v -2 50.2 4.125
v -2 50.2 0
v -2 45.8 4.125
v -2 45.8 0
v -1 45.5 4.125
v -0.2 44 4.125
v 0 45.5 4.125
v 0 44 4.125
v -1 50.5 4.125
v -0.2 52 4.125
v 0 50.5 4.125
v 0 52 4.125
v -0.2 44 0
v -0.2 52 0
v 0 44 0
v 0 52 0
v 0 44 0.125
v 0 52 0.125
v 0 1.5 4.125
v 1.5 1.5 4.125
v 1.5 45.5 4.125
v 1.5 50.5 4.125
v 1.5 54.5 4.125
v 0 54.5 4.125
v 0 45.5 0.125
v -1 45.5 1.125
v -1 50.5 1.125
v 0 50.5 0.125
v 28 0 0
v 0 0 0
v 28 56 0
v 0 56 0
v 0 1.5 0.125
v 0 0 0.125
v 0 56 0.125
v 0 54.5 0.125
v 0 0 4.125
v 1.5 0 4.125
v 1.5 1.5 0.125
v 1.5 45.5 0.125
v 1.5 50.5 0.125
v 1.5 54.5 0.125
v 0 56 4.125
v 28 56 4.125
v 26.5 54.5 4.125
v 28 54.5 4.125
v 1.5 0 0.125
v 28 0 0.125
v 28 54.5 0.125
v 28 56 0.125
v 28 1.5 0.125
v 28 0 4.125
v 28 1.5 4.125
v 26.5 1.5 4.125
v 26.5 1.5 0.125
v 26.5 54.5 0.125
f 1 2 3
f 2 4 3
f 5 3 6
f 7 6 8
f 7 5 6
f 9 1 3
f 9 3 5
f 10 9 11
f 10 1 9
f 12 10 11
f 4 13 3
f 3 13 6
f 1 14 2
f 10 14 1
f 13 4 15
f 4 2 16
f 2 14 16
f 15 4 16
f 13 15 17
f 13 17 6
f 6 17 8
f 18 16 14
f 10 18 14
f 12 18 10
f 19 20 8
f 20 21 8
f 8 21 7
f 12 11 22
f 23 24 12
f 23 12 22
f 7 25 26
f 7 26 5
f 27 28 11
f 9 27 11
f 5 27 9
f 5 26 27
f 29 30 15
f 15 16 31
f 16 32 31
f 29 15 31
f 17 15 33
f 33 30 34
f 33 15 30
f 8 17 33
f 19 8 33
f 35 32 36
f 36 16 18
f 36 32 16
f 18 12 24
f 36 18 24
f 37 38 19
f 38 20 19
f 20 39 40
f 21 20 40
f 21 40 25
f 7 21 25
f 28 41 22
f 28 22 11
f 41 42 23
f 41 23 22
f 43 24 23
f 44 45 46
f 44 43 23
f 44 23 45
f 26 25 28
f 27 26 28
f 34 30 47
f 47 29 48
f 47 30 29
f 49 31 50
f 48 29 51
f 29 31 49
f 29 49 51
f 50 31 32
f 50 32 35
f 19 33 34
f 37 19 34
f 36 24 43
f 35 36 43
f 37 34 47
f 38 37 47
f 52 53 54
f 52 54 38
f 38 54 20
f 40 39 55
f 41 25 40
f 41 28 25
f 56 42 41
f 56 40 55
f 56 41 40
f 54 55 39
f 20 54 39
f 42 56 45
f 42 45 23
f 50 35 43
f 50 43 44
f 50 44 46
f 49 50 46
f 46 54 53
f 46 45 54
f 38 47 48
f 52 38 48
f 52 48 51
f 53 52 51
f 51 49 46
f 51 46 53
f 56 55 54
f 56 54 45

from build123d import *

# Parameters (mm, degrees)
BOX_W           = 28
BOX_H           = 56
BOX_DEPTH       = 0.125
SKETCH004_W     = 1.5
SKETCH004_H     = 45.5
SKETCH004_H_2   = 4
PAD004_DEPTH    = 4
SKETCH005_W     = 28
SKETCH005_H     = 1.5
PAD005_DEPTH    = 4
SKETCH006_W     = 1.5
SKETCH006_H     = 53
PAD006_DEPTH    = 4
SKETCH003_W     = 28
SKETCH003_H     = 1.5
PAD003_DEPTH    = 4
BOX004_W        = 5
BOX004_H        = 5
BOX004_DEPTH    = 5
CHAMFER_SIZE    = 1
BOX002_W        = 2
BOX002_H        = 8
BOX002_DEPTH    = 4.125
CHAMFER001_SIZE = 1.8


with BuildPart() as base:
    # Box → Box (new body)
    with BuildSketch(Plane.XY):
        with Locations((14, 28)):
            Rectangle(BOX_W, BOX_H)
    extrude(amount=BOX_DEPTH)


with BuildPart() as pad004:
    # Sketch004 → Pad004 (new body)
    with BuildSketch(Plane.XY.offset(0.125)):
        with Locations((0.75, 22.75)):
            Rectangle(SKETCH004_W, SKETCH004_H)
        with Locations((0.75, 52.5)):
            Rectangle(SKETCH004_W, SKETCH004_H_2)
    extrude(amount=PAD004_DEPTH)


with BuildPart() as pad005:
    # Sketch005 → Pad005 (new body)
    with BuildSketch(Plane.XY.offset(0.125)):
        with Locations((14, 0.75)):
            Rectangle(SKETCH005_W, SKETCH005_H)
    extrude(amount=PAD005_DEPTH)


with BuildPart() as pad006:
    # Sketch006 → Pad006 (new body)
    with BuildSketch(Plane.XY.offset(0.125)):
        with Locations((27.25, 28)):
            Rectangle(SKETCH006_W, SKETCH006_H)
    extrude(amount=PAD006_DEPTH)


with BuildPart() as walls:
    # Sketch003 → Pad003 (new body)
    with BuildSketch(Plane.XY.offset(0.125)):
        with Locations((14, 55.25)):
            Rectangle(SKETCH003_W, SKETCH003_H)
    extrude(amount=PAD003_DEPTH)

    # Fusion001: union Pad004, Pad005, Pad006
    add(pad004.part)
    add(pad005.part)
    add(pad006.part)


with BuildPart() as chamfer_body:
    # Box004 → Box004 (new body)
    with BuildSketch(Plane(origin=(-1, 45.5, 0.125), x_dir=(1, 0, 0), z_dir=(0, 0, 1))):
        with Locations((2.5, 2.5)):
            Rectangle(BOX004_W, BOX004_H)
    extrude(amount=BOX004_DEPTH)

    # Chamfer
    chamfer_edges = [chamfer_body.edges().sort_by_distance(p)[0] for p in [
        (-1, 48, 0.125),
    ]]
    chamfer(chamfer_edges, length=CHAMFER_SIZE)


with BuildPart() as base_and_walls_do_not_edit:
    # Box002 → Box002 (new body)
    with BuildSketch(Plane(origin=(-2, 44, 0), x_dir=(1, 0, 0), z_dir=(0, 0, 1))):
        with Locations((1, 4)):
            Rectangle(BOX002_W, BOX002_H)
    extrude(amount=BOX002_DEPTH)

    # Chamfer001
    chamfer001_edges = [base_and_walls_do_not_edit.edges().sort_by_distance(p)[0] for p in [
        (-2, 44, 2.0625),
        (-2, 52, 2.0625),
    ]]
    chamfer(chamfer001_edges, length=CHAMFER001_SIZE)

    # Cut: cut Chamfer body
    add(chamfer_body.part, mode=Mode.SUBTRACT)

    # Fusion: union Walls
    add(walls.part)

    # Fusion002: union Base
    add(base.part)


solid = base_and_walls_do_not_edit.part
